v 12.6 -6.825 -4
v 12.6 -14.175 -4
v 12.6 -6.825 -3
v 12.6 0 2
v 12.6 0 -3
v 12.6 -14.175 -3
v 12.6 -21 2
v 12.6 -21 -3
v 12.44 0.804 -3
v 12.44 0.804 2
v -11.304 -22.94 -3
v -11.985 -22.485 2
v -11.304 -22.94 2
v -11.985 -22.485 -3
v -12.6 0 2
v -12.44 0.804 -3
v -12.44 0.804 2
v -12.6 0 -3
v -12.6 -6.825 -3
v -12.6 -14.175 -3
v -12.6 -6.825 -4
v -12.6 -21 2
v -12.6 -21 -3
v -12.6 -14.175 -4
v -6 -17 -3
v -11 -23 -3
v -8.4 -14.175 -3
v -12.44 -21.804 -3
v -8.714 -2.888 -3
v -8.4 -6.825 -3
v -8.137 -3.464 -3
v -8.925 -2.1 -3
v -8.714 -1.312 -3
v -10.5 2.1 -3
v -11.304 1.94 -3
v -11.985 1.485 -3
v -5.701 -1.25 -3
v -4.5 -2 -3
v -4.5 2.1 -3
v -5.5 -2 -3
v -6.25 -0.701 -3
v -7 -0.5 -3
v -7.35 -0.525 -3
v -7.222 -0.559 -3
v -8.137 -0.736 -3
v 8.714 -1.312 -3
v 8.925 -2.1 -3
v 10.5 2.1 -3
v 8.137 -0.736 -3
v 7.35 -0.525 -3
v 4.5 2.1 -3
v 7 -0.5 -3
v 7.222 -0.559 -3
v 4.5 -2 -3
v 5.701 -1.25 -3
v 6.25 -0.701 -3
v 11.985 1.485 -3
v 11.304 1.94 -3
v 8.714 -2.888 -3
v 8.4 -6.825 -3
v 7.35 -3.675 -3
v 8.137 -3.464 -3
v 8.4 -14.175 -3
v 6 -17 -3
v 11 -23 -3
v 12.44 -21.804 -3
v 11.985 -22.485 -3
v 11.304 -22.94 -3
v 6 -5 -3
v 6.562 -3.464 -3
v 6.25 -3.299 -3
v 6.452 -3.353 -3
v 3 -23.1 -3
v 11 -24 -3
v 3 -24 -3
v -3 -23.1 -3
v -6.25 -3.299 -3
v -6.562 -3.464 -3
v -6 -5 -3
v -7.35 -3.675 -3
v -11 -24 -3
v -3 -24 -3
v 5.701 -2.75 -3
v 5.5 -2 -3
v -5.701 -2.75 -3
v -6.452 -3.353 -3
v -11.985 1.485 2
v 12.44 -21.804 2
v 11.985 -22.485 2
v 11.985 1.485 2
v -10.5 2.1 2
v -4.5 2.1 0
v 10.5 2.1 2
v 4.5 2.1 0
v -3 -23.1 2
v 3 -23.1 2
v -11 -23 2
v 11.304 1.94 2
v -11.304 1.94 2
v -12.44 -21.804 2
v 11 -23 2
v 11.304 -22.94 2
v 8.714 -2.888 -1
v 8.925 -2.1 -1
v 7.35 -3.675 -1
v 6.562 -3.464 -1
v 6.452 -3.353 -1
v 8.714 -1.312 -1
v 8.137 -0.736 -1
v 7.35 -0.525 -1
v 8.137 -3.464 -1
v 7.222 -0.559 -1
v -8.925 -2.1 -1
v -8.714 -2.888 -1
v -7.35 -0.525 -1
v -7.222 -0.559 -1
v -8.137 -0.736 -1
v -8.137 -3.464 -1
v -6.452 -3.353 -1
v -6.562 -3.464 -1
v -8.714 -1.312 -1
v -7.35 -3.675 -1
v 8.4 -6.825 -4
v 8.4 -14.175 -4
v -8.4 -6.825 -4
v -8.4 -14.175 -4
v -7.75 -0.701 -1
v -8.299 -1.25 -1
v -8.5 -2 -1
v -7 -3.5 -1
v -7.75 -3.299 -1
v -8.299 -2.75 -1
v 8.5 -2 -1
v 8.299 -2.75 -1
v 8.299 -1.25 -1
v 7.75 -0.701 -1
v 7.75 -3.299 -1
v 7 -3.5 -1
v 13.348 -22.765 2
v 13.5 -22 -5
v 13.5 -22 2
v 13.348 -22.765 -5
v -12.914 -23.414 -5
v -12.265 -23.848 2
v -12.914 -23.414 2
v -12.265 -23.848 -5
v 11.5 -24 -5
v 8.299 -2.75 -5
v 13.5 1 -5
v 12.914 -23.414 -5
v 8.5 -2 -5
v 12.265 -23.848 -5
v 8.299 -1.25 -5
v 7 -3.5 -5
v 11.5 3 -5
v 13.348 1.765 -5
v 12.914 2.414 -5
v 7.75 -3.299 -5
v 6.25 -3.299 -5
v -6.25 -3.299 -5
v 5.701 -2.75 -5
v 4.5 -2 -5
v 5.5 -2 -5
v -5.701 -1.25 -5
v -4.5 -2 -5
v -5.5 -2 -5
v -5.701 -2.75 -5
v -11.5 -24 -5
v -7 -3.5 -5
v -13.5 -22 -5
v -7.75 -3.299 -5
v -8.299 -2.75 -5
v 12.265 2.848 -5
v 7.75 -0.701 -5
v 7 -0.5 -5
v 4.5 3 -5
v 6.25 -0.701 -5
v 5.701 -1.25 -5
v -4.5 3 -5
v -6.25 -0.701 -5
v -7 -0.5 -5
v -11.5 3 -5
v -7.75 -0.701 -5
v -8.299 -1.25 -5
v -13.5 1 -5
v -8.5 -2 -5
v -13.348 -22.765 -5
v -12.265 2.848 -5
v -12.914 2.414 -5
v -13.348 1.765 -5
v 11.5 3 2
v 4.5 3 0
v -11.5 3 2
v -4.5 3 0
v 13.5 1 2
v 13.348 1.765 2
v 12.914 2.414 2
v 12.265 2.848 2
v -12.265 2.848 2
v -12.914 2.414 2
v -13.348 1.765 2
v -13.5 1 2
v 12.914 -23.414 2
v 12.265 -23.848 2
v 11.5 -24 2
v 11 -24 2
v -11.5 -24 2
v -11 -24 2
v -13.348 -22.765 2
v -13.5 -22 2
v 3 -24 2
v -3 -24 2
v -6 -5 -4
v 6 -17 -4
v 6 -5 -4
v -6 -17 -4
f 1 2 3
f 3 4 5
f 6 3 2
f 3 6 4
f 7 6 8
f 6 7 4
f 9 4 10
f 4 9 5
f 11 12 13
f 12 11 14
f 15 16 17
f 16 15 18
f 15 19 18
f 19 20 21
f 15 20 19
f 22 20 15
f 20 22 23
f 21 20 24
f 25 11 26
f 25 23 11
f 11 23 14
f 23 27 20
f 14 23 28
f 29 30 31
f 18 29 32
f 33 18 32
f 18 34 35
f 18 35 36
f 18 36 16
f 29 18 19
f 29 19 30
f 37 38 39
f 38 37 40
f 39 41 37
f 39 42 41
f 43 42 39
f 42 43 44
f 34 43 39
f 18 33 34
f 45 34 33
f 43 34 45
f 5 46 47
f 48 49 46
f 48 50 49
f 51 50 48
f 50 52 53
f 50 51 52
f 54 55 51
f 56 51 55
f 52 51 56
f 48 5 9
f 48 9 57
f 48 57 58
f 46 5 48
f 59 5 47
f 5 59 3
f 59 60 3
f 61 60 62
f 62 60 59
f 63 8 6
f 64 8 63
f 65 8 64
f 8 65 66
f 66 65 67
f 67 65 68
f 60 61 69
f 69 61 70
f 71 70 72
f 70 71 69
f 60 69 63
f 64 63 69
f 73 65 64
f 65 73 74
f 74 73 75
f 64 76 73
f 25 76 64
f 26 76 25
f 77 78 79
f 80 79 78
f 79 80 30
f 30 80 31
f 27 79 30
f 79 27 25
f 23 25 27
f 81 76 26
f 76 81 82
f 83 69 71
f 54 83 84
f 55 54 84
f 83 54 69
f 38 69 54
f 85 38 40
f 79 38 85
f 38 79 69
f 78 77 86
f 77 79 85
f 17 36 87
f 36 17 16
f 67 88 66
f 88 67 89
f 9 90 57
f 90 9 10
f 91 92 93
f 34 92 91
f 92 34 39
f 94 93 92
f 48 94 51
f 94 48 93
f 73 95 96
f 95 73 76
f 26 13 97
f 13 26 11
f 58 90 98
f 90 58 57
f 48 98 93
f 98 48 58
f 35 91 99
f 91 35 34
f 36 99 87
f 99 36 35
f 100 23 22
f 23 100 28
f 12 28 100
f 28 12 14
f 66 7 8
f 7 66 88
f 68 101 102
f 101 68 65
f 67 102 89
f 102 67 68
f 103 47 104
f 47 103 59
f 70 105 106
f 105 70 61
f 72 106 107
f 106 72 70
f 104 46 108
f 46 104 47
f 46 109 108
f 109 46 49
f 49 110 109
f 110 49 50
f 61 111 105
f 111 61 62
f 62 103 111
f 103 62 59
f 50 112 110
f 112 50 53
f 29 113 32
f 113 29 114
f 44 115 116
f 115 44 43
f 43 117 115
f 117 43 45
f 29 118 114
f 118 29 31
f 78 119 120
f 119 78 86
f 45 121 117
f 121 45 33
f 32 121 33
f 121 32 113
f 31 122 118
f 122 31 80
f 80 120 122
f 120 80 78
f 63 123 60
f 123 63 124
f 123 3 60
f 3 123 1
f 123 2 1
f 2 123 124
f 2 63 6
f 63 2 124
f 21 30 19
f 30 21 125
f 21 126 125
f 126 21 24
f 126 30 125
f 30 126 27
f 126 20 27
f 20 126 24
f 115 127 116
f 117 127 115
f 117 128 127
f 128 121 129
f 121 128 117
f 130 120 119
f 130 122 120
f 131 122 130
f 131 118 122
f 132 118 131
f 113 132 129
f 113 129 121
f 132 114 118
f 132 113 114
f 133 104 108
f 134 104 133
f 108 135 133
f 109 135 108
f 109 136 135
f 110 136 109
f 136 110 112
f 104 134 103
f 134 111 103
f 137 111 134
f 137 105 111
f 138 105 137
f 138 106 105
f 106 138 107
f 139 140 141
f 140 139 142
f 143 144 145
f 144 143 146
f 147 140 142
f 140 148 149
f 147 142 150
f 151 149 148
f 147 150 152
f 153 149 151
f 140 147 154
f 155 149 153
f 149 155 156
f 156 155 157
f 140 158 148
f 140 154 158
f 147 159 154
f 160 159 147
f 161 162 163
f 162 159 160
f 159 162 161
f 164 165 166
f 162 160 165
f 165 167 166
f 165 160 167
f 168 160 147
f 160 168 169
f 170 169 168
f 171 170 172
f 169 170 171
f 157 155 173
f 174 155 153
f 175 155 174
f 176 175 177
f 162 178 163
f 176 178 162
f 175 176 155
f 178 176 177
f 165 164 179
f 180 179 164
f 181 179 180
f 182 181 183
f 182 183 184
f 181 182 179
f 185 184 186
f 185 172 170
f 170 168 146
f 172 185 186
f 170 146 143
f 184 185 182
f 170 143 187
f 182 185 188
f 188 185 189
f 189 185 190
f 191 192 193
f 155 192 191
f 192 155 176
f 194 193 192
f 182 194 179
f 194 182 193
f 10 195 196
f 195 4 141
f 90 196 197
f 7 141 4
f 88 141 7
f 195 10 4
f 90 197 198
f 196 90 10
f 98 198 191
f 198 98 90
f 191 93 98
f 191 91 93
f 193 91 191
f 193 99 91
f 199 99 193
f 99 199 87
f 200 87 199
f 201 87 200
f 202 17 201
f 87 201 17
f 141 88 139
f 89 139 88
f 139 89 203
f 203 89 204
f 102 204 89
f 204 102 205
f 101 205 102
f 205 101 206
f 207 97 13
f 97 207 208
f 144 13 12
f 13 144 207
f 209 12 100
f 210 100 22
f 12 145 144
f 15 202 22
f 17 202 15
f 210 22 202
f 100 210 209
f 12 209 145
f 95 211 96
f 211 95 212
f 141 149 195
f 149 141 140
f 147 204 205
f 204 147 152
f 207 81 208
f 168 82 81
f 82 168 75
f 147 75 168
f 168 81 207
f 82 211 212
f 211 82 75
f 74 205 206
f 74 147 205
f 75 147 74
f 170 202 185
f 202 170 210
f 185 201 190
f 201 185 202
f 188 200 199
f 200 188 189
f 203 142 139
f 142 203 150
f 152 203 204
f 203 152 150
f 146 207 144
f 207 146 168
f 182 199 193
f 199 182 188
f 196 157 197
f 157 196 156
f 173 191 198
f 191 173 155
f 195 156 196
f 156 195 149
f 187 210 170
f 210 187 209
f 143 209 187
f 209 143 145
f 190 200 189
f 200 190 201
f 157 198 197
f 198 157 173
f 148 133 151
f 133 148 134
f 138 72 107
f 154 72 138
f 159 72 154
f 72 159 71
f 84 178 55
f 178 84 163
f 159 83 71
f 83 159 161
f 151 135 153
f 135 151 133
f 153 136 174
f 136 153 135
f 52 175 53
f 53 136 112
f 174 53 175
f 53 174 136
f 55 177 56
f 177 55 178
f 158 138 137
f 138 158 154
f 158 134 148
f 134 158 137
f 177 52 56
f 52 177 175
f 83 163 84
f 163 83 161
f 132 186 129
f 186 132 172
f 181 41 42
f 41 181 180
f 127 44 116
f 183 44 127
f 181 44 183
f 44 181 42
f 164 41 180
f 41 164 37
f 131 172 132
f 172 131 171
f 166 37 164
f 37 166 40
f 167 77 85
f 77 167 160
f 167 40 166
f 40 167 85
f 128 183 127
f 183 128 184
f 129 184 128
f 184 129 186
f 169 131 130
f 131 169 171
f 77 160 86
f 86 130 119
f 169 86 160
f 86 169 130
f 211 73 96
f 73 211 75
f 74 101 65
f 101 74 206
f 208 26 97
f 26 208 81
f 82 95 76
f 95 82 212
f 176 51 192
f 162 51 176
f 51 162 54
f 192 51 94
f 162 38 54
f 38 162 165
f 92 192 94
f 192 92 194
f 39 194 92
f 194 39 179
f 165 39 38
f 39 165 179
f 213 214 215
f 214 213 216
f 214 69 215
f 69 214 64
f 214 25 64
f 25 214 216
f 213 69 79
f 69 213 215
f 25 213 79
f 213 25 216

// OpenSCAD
// file: bottom.scad
$fa=2;
$fs=0.8;

use <../lib/roundedRect.scad>;

width = 20;
height = 20;
thickness = 1;
holesDistance = 14;

module hole() {
    translate([holesDistance/2, 2, -1]) cylinder(h = 10, d = 3);
}

module insets() {
    x = 4;
    y = 7;
    z = 2;
    CubePoints = [
  [  0,  0,  0 ],  //0
  [ x,  0,  0 ],  //1
  [ x,  y,  0 ],  //2
  [  0,  y,  0 ],  //3
  [  0,  0,  z ],  //4
  [ x,  0,  z ],  //5
  [ x,  y,  z ],  //6
  [  0,  y,  z ]]; //7
  
    CubeFaces = [
  [0,1,2,3],  // bottom
  [4,5,1,0],  // front
  [7,6,5,4],  // top
  [5,6,2,1],  // right
  [6,7,3,2],  // back
  [7,4,0,3]]; // left
  
    translate([x*2, (width - y)/2, 2]) polyhedron( CubePoints, CubeFaces );
}

module bottom(w, h, t) {
     union() {
        difference() {
            translate([-w/2, 0, 0]) roundedRect([w, h, t]);
            hole();
            mirror([1, 0, 0]) hole();
        }
        insets();
        mirror([1, 0, 0]) insets();
    }
}
 
bottom(width, height, thickness);
 
// file: ../lib/roundedRect.scad
module roundedRect2(size, radius) {
    translate([radius, radius, 0]) minkowski() {
        cube([size[0] - 2 * radius , size[1] - 2 * radius, size[2] -1]);
        cylinder(r=radius, h=1);
    }
}

module roundedRect(size, radius) {
    minkowski() {
        cube(size);
        cylinder(r=2,h=1);
    }
}
// main file
$fa=2;
$fs=0.8;

use <../lib/roundedRect.scad>;
use <bottom.scad>;

width = 20;
length = 20;
height = 6;
thickness = 3;
holesDistance = 14;

module negativeBottom(){
    scale([1.05, 1.05, 1]) {
        bottom(width, length, 2);
        translate([-width/2, 0, -10]) roundedRect([width, length, 10]);
    }
}

module legHole() {
    translate([3, length, -5]) cube([8, 5, 8]);
}

module connectorHole() {
    translate([-0.0001, -4, 0]) cube([4.5, 6, 6]);
}

module middleHole() {
    translate([-0.0001, 5, 0]) cube([6, 12, 4]);
}

module cover() {
    union() {
        difference() {
            translate([-(width + thickness)/2, -1, -2]) roundedRect([width + thickness, length  + thickness, height]);
            negativeBottom();
            hole(); mirror([1, 0, 0]) hole();
            legHole(); mirror([1, 0, 0]) legHole();
            connectorHole(); mirror([1, 0, 0]) connectorHole();
            middleHole(); mirror([1, 0, 0]) middleHole();   
        }
    }
}
 
rotate([180, 0, 0]) cover();
